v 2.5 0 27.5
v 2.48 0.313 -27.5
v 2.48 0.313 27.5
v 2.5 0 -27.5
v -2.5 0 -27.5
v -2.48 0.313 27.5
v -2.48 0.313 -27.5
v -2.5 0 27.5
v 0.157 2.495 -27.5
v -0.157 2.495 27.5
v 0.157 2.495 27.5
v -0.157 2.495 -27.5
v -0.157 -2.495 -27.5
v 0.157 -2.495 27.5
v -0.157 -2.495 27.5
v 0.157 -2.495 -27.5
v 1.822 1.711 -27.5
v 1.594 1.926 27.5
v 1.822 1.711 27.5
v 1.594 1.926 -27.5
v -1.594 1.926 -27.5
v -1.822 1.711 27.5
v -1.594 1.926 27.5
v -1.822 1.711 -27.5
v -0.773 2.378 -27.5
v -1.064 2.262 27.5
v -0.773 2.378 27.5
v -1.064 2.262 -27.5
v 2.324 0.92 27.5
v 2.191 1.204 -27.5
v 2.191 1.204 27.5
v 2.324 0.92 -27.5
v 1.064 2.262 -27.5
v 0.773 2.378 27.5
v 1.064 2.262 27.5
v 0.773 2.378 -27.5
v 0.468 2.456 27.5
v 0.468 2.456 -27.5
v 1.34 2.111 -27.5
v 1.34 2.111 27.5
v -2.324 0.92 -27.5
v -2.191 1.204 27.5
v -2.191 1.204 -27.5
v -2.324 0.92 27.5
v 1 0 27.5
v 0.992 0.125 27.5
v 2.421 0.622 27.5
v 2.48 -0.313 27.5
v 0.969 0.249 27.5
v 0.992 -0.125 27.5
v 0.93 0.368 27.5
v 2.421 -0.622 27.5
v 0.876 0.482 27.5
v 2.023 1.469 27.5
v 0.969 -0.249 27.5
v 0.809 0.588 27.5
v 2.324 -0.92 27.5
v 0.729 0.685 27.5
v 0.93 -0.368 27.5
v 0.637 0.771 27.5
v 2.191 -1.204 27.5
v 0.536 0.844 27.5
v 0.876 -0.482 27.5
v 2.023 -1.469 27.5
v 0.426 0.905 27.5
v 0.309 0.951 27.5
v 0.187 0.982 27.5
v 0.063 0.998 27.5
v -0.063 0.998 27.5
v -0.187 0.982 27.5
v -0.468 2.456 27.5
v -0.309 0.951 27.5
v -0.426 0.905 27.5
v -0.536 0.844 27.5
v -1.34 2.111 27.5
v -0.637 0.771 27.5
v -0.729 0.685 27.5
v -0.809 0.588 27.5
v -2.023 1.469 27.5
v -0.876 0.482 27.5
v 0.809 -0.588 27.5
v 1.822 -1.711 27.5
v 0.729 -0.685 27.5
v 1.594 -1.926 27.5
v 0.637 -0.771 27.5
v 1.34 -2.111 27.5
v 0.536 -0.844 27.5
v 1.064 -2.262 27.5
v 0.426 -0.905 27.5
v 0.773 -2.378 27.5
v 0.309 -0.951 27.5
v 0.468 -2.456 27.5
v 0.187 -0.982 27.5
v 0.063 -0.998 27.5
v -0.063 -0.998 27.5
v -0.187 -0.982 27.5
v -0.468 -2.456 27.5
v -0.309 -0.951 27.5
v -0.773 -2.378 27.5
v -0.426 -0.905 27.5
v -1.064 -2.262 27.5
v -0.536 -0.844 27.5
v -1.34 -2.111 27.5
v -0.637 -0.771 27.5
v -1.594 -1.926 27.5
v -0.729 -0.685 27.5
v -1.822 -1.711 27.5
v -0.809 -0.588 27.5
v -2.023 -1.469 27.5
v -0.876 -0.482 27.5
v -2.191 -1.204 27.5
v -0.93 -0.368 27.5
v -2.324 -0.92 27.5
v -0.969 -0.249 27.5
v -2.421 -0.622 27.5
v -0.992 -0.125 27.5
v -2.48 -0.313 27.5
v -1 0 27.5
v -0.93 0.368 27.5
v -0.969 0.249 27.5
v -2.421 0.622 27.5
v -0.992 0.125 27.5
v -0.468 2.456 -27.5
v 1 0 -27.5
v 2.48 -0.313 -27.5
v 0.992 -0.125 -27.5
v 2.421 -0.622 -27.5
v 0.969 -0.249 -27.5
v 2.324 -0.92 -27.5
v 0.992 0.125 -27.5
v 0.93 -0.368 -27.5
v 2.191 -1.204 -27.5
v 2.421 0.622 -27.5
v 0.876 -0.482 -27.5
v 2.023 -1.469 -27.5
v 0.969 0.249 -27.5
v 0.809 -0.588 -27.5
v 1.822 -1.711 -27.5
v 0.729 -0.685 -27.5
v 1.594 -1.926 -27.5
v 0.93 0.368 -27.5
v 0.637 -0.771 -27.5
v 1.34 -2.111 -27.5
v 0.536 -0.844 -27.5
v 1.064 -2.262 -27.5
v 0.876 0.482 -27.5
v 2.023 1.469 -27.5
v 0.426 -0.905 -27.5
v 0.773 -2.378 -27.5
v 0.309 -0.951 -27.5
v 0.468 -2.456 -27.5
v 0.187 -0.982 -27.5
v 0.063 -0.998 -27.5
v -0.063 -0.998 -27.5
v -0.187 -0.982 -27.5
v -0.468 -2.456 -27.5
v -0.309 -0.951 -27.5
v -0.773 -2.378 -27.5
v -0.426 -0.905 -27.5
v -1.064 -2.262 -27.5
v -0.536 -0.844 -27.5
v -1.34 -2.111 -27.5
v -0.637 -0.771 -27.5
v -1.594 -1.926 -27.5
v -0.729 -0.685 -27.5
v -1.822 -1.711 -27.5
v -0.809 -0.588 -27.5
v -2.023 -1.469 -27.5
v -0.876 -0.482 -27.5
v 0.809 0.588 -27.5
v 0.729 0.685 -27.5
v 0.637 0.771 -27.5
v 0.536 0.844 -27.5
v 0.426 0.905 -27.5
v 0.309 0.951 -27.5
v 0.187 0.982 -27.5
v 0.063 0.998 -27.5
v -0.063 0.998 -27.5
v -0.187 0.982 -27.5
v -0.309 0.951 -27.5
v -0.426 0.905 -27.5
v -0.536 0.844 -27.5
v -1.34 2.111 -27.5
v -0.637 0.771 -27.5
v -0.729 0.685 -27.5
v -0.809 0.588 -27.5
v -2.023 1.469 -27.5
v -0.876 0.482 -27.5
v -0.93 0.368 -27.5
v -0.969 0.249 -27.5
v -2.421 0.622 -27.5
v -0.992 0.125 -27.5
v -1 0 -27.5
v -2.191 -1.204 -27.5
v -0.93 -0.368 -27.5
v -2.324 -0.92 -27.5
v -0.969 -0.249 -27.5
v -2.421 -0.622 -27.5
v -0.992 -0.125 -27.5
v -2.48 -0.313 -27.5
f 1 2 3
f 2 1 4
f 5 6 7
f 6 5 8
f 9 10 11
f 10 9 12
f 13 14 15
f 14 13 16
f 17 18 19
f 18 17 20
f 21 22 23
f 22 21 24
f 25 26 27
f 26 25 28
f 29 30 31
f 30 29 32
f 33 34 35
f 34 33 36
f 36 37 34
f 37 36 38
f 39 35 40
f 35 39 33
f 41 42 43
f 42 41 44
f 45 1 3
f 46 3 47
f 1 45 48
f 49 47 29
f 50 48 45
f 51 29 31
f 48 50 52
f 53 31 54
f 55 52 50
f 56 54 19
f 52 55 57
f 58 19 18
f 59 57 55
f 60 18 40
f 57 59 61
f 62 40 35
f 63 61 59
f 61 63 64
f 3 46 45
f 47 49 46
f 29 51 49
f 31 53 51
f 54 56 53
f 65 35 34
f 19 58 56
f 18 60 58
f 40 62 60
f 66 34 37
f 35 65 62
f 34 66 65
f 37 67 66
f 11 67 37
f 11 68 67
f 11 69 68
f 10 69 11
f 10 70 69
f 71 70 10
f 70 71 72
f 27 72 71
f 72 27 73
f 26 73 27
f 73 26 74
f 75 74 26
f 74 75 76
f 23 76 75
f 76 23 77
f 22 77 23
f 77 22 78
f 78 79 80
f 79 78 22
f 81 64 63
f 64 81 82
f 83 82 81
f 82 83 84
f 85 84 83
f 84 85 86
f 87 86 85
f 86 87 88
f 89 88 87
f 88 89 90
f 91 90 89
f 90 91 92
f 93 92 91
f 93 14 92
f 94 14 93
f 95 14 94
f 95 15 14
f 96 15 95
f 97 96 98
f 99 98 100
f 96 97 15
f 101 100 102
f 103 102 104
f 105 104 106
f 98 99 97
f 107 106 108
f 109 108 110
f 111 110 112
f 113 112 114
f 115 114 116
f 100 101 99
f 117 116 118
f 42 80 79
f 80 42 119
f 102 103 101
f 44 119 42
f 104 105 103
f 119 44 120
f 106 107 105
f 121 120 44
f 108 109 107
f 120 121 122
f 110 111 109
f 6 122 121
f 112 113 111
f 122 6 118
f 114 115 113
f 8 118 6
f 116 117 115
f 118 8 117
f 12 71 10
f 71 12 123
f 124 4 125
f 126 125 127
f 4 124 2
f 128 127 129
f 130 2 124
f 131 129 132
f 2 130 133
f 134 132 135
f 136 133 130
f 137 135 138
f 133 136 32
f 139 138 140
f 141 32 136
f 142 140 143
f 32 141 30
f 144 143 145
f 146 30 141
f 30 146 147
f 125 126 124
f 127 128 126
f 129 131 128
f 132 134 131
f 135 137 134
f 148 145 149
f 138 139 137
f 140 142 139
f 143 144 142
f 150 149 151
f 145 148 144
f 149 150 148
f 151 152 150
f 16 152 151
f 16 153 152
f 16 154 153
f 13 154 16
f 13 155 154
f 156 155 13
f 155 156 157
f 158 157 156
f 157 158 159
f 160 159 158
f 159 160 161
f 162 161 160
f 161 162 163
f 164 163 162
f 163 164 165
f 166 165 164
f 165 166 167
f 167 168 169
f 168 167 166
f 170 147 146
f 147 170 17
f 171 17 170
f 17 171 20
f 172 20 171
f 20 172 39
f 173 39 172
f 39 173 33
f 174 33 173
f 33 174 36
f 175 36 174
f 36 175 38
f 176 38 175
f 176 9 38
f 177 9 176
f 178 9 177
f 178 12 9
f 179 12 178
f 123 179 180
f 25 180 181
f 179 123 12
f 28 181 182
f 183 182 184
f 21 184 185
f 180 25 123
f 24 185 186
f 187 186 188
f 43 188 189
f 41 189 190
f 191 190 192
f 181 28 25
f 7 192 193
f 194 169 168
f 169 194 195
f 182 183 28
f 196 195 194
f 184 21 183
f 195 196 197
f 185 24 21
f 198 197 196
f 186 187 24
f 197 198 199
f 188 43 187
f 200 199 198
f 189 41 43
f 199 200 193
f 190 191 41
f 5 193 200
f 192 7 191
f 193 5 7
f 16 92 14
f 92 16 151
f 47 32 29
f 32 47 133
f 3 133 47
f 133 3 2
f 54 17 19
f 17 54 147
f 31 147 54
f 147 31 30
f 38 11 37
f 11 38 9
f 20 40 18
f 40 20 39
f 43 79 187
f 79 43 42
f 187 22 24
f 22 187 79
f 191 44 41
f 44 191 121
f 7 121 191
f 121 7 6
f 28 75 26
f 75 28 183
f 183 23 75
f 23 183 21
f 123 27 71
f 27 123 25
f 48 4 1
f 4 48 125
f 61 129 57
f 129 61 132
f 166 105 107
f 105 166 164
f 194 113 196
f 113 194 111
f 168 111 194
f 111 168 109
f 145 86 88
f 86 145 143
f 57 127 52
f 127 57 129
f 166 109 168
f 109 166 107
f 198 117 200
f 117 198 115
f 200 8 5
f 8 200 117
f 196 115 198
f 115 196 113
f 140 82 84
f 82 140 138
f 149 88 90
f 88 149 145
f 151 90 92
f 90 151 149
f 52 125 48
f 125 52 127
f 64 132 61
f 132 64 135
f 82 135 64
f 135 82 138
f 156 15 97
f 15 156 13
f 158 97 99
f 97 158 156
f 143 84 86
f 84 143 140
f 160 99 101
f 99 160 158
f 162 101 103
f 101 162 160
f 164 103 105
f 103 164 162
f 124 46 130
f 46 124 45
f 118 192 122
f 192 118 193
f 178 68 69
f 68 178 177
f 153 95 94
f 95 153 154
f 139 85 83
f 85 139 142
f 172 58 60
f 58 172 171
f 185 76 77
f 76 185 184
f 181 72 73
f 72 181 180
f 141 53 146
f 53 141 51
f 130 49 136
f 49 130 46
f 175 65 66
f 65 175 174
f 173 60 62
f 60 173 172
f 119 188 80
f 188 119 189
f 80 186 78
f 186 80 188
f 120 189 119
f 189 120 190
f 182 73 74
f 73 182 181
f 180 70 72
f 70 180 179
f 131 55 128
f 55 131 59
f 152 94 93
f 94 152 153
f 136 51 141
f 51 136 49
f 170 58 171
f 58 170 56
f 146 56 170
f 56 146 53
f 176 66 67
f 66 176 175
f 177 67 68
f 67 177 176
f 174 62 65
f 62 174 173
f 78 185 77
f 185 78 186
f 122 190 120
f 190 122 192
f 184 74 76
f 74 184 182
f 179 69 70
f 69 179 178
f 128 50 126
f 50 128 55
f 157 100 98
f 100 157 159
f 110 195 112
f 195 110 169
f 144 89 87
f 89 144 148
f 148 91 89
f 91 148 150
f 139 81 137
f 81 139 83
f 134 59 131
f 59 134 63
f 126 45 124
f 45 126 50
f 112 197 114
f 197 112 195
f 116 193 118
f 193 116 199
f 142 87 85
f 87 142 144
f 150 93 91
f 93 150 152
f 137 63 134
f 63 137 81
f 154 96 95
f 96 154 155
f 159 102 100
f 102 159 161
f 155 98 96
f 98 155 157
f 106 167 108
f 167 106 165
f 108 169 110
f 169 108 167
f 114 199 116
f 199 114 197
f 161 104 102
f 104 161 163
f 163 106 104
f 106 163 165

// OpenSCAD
$fn = 50;


difference() {
	union() {
		translate(v = [0, 0, -27.5000000000]) {
			cylinder(h = 55, r = 2.5000000000);
		}
	}
	union() {
		translate(v = [0, 0, -100.0000000000]) {
			cylinder(h = 200, r = 1.0000000000);
		}
	}
}
